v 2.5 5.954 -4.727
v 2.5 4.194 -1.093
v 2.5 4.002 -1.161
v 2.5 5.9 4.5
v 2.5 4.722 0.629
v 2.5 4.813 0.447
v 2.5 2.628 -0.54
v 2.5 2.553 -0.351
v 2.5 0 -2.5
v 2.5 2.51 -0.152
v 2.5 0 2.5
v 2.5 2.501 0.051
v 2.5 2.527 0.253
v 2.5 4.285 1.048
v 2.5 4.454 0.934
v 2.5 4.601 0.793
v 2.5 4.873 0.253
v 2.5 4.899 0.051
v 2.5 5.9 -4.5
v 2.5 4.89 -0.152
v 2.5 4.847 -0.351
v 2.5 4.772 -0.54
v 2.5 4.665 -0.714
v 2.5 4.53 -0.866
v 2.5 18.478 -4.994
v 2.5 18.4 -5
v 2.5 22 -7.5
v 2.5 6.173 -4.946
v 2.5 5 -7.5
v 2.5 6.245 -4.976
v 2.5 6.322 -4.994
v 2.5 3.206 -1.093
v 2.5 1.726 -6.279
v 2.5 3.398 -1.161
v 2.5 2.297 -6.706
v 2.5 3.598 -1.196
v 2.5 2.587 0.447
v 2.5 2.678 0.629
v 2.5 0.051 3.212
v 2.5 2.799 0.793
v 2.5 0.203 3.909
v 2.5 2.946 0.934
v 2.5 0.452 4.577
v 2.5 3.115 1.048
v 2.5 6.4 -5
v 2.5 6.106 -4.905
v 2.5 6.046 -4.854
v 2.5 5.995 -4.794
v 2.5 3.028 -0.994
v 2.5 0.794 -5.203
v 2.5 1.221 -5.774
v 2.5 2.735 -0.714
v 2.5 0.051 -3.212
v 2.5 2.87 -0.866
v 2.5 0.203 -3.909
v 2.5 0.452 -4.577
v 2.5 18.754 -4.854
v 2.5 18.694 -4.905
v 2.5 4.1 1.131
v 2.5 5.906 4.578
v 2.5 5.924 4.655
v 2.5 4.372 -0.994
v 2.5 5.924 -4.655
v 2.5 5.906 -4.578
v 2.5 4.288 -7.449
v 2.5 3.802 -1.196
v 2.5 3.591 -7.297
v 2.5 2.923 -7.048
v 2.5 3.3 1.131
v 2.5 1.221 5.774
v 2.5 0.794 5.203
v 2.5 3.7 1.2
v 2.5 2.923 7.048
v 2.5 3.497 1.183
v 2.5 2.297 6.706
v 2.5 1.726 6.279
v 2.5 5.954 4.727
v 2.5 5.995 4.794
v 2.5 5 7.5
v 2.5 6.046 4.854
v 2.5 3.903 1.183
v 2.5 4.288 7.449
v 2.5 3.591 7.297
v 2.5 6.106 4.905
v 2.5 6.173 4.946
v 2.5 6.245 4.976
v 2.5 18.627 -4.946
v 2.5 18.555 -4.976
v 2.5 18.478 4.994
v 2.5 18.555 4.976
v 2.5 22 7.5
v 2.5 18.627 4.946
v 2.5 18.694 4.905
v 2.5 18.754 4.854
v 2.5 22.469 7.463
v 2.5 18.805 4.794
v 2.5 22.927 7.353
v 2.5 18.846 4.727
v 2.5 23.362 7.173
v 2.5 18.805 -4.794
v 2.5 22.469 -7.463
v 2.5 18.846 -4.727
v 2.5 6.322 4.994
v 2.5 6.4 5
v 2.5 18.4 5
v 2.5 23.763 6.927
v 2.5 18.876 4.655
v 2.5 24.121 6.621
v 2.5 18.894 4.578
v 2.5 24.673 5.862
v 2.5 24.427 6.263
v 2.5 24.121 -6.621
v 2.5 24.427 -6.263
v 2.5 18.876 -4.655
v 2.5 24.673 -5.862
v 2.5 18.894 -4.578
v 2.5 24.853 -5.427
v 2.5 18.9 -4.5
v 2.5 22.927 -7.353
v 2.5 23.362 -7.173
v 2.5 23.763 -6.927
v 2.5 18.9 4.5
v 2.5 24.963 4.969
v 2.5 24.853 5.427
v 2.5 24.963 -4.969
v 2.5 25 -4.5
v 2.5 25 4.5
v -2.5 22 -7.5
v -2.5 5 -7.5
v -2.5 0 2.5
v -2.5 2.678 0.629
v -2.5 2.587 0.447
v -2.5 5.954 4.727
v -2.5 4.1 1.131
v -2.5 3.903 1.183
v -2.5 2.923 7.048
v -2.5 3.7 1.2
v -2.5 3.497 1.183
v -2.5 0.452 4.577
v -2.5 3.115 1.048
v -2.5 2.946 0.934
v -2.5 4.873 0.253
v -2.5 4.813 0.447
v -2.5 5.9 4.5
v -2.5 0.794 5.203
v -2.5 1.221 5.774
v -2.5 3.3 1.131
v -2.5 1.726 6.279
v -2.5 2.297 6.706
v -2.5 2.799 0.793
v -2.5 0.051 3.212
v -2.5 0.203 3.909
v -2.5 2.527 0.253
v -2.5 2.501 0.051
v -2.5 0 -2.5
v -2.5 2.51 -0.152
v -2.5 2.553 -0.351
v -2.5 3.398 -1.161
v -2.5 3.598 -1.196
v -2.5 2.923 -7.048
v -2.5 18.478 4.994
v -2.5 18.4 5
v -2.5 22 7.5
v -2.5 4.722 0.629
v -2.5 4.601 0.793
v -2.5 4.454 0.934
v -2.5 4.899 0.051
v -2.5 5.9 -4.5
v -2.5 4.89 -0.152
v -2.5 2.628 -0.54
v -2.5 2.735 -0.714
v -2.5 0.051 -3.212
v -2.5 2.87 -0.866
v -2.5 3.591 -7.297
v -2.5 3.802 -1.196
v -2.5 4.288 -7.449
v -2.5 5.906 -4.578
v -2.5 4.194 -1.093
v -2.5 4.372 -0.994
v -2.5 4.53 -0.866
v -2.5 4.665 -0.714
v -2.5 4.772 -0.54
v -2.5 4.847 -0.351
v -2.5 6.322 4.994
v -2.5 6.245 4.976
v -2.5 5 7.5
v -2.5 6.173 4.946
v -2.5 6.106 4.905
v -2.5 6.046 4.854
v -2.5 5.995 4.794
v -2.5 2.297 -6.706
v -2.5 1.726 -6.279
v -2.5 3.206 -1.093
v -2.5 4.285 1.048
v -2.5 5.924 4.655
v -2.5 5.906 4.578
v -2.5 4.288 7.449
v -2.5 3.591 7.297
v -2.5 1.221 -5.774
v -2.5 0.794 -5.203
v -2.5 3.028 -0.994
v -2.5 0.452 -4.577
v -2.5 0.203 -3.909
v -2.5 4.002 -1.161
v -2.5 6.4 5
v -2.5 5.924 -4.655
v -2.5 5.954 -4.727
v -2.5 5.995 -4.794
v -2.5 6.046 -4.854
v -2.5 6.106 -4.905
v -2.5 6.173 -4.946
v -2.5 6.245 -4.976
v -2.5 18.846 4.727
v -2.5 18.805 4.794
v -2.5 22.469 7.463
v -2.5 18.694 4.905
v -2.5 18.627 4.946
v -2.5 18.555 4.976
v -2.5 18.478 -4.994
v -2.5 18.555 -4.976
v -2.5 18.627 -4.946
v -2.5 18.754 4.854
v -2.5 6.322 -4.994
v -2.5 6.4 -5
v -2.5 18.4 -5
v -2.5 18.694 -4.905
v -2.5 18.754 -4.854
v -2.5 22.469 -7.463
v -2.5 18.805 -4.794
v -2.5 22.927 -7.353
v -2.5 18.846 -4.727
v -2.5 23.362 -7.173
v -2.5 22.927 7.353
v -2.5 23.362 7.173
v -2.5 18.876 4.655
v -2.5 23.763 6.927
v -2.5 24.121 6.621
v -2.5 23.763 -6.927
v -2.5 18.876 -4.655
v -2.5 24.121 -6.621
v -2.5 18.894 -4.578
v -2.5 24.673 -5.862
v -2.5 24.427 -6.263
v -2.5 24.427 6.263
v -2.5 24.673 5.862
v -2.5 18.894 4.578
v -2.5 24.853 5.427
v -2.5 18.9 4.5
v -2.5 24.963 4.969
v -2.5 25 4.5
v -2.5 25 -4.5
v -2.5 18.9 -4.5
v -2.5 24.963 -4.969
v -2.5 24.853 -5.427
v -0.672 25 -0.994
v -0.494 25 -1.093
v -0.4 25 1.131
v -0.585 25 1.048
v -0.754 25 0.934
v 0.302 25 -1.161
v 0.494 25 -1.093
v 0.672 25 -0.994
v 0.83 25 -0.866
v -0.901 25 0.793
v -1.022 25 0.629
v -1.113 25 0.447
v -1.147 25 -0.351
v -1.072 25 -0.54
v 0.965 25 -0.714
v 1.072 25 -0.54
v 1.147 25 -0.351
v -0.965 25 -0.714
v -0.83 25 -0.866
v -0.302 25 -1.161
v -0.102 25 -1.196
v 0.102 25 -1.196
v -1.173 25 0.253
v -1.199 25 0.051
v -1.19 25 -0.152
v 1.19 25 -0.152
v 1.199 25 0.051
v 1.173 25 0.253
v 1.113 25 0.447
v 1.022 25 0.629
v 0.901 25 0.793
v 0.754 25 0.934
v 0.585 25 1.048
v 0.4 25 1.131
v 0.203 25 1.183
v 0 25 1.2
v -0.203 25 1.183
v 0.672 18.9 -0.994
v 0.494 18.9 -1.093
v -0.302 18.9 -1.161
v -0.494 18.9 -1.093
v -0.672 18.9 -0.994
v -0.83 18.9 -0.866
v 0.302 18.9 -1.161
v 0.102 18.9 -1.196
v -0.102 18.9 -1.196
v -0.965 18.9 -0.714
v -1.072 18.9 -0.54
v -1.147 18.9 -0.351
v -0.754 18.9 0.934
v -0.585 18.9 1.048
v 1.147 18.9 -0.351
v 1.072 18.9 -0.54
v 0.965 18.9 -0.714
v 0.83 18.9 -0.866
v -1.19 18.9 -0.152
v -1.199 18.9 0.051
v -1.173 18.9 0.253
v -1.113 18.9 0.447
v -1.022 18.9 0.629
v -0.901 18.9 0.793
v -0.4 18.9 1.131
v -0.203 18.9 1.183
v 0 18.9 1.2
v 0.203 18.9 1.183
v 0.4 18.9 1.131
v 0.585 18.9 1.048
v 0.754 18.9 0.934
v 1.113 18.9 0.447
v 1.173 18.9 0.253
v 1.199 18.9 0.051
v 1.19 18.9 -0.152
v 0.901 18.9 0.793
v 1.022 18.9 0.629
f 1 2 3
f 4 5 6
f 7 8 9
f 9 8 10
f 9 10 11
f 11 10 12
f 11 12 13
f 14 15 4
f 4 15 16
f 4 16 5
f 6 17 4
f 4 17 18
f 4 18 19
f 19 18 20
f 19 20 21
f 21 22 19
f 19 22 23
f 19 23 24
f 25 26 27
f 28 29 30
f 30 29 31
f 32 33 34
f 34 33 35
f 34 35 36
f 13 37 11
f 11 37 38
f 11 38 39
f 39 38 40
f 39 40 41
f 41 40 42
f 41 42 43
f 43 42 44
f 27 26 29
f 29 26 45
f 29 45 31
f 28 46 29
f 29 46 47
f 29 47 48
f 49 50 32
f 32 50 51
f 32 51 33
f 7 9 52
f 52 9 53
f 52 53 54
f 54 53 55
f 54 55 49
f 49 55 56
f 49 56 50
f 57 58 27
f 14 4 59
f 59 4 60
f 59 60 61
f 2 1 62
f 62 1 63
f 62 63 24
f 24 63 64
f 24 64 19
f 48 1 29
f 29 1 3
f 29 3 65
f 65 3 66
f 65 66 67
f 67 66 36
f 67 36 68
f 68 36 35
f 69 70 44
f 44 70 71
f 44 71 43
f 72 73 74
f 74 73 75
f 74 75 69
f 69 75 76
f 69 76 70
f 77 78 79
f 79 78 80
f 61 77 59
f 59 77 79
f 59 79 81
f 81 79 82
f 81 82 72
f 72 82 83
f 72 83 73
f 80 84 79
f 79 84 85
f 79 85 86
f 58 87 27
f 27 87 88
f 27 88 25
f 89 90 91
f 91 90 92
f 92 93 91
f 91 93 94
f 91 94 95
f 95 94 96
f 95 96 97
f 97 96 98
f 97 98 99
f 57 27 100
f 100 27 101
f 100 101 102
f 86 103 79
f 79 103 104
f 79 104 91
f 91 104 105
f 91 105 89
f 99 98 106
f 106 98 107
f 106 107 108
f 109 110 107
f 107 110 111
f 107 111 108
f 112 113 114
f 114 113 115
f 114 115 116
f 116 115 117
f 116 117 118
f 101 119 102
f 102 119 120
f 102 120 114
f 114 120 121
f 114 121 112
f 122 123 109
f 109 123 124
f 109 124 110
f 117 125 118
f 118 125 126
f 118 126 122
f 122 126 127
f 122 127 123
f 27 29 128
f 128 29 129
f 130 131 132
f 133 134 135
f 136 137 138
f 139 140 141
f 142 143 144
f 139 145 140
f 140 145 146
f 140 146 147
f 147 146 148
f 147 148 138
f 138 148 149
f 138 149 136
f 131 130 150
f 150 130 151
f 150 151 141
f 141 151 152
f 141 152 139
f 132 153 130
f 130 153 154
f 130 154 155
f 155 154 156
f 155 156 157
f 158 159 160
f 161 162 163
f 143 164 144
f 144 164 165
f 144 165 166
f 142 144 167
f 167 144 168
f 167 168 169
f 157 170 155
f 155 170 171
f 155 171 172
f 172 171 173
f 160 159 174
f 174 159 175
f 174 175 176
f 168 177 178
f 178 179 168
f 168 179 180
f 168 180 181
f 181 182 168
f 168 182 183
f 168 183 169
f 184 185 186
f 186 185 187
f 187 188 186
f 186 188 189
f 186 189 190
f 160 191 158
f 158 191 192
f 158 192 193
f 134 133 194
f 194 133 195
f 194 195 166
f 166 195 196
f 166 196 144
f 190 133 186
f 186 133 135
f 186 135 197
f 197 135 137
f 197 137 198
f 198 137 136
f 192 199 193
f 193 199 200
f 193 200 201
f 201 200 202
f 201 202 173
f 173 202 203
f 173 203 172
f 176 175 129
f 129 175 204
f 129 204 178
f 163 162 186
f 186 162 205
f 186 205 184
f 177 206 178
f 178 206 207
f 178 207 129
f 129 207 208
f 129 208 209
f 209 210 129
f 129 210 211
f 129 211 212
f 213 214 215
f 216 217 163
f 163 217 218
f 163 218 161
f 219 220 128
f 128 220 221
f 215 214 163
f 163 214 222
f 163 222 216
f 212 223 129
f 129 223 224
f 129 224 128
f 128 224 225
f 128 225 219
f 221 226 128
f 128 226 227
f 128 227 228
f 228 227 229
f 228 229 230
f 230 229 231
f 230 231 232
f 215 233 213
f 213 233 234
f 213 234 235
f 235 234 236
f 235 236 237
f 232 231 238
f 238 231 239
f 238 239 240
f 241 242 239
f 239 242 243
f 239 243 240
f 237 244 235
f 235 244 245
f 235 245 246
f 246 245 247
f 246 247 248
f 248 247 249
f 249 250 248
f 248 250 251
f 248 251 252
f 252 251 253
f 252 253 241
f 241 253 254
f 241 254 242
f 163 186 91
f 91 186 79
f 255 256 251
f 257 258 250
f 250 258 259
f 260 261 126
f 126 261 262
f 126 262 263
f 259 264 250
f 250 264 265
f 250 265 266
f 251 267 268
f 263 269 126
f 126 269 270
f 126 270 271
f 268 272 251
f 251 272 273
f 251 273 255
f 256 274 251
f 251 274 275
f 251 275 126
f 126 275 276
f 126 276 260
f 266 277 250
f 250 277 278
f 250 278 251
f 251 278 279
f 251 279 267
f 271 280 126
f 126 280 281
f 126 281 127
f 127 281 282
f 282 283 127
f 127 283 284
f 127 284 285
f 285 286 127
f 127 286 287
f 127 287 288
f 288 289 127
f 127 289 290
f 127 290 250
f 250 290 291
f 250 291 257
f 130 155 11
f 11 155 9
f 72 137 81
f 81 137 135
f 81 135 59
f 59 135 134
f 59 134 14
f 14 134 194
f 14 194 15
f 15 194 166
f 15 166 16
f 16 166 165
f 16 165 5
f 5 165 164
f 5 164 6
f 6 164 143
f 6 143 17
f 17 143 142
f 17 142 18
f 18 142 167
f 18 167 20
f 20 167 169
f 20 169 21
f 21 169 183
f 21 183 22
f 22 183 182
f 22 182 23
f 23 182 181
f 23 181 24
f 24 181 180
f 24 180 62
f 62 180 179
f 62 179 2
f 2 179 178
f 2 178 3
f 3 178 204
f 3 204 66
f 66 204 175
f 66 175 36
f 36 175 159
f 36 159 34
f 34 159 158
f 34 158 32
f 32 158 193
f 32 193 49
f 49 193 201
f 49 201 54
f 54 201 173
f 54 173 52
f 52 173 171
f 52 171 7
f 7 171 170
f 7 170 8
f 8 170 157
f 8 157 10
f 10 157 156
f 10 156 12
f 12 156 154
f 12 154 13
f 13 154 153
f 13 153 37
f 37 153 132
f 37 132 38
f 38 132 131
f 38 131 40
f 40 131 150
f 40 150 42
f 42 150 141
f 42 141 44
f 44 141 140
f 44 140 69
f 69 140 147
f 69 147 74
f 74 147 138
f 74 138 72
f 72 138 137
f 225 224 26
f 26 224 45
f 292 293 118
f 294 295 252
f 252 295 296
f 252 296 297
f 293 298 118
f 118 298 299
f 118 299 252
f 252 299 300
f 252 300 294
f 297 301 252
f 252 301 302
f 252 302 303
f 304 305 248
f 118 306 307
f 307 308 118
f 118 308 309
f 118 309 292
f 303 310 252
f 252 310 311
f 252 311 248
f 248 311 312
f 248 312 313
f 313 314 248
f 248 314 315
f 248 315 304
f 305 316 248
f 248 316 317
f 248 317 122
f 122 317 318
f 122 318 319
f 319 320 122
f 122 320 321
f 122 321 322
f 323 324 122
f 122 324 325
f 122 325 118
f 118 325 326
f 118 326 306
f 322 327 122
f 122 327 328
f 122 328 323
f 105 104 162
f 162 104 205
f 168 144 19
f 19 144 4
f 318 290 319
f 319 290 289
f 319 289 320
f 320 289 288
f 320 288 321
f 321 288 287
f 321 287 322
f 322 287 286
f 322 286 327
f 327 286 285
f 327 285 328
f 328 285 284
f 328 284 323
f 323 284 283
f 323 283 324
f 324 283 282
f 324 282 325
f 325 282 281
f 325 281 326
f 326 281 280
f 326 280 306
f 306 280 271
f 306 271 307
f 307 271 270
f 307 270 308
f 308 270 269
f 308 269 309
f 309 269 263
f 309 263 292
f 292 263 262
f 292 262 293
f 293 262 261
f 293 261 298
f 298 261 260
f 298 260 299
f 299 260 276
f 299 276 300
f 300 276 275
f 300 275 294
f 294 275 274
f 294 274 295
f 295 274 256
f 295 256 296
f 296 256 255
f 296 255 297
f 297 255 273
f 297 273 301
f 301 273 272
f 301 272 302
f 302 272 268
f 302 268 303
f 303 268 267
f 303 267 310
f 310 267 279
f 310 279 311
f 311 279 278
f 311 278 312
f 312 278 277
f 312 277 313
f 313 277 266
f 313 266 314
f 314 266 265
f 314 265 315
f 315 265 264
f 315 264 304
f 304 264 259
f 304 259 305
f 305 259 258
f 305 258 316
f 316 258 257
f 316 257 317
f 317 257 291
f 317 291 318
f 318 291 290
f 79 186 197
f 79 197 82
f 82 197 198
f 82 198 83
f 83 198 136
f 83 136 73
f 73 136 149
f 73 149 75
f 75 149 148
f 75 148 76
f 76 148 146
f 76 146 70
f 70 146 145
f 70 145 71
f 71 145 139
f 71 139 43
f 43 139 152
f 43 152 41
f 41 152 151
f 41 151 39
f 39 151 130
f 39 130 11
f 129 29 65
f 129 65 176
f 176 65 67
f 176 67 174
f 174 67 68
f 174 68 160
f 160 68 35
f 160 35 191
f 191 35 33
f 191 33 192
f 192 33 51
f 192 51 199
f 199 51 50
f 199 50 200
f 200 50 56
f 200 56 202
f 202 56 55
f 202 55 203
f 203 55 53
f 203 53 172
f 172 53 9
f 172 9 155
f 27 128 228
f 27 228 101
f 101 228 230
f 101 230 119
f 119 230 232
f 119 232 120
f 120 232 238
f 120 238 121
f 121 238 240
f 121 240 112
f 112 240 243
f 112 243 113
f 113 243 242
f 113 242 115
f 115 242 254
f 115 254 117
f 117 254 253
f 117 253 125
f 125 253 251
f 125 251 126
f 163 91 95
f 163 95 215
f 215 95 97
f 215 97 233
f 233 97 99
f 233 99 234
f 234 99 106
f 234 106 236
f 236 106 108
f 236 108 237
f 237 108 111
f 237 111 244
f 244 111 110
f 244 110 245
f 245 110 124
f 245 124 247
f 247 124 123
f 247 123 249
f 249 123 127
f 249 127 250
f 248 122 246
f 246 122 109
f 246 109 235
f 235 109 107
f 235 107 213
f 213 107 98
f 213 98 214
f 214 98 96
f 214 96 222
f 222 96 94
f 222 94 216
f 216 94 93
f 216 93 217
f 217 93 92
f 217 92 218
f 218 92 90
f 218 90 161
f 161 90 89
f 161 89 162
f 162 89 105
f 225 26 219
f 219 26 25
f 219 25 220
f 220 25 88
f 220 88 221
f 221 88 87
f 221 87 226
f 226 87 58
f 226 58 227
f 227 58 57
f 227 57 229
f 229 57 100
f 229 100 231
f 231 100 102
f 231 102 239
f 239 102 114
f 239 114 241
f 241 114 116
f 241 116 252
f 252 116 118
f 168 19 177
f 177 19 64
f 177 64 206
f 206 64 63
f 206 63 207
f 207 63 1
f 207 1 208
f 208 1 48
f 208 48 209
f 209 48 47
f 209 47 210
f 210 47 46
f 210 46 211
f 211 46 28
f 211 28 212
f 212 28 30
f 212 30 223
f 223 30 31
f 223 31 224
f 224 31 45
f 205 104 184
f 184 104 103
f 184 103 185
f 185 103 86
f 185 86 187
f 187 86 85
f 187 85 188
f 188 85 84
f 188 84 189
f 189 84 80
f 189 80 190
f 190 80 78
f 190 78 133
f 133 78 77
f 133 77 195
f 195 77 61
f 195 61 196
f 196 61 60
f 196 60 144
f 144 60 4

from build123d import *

# Parameters (mm, degrees)
SKETCH16_W                 = 5
SKETCH16_H                 = 15
MAIN_EXTRUDE_LOCKING_DEPTH = 25
SKETCH18_R                 = 1.2
CUT_EXTRUDE1_DEPTH         = 5
SKETCH8_W                  = 10
SKETCH8_H                  = 13
CUT_EXTRUDE2_DEPTH         = 5
SKETCH9_R                  = 1.2
CUT_EXTRUDE3_DEPTH         = 6.1
FILLET1_R                  = 5
FILLET2_R                  = 3
FILLET3_R                  = 0.5


with BuildPart() as part:
    # Sketch16 → Main Extrude_Locking (new body)
    with BuildSketch(Plane(origin=(0, 0, 0), x_dir=(1, 0, 0), z_dir=(0, 1, 0))):
        Rectangle(SKETCH16_W, SKETCH16_H)
    extrude(amount=MAIN_EXTRUDE_LOCKING_DEPTH)

    # Sketch18 → Cut-Extrude1 (cut)
    with BuildSketch(Plane.ZY.offset(2.5)):
        with Locations((0, 3.7)):
            Circle(SKETCH18_R)
    extrude(amount=-CUT_EXTRUDE1_DEPTH, mode=Mode.SUBTRACT)

    # Sketch8 → Cut-Extrude2 (cut)
    with BuildSketch(Plane.ZY.offset(2.5)):
        with Locations((0, 12.4)):
            Rectangle(SKETCH8_W, SKETCH8_H)
    extrude(amount=-CUT_EXTRUDE2_DEPTH, mode=Mode.SUBTRACT)

    # Sketch9 → Cut-Extrude3 (cut)
    with BuildSketch(Plane(origin=(0, 25, 0), x_dir=(1, 0, 0), z_dir=(0, 1, 0))):
        with Locations(Location((0, 0, 0), (0, 0, 270))):
            Circle(SKETCH9_R)
    extrude(amount=-CUT_EXTRUDE3_DEPTH, mode=Mode.SUBTRACT)

    # Fillet1
    fillet1_edges = [part.edges().sort_by_distance(p)[0] for p in [
        (0, 0, 7.5),
        (0, 0, -7.5),
    ]]
    fillet(fillet1_edges, radius=FILLET1_R)

    # Fillet2
    fillet2_edges = [part.edges().sort_by_distance(p)[0] for p in [
        (0, 25, 7.5),
        (0, 25, -7.5),
    ]]
    fillet(fillet2_edges, radius=FILLET2_R)

    # Fillet3
    fillet3_edges = [part.edges().sort_by_distance(p)[0] for p in [
        (0, 5.9, -5),
        (0, 18.9, -5),
        (0, 18.9, 5),
        (0, 5.9, 5),
    ]]
    fillet(fillet3_edges, radius=FILLET3_R)


solid = part.part
